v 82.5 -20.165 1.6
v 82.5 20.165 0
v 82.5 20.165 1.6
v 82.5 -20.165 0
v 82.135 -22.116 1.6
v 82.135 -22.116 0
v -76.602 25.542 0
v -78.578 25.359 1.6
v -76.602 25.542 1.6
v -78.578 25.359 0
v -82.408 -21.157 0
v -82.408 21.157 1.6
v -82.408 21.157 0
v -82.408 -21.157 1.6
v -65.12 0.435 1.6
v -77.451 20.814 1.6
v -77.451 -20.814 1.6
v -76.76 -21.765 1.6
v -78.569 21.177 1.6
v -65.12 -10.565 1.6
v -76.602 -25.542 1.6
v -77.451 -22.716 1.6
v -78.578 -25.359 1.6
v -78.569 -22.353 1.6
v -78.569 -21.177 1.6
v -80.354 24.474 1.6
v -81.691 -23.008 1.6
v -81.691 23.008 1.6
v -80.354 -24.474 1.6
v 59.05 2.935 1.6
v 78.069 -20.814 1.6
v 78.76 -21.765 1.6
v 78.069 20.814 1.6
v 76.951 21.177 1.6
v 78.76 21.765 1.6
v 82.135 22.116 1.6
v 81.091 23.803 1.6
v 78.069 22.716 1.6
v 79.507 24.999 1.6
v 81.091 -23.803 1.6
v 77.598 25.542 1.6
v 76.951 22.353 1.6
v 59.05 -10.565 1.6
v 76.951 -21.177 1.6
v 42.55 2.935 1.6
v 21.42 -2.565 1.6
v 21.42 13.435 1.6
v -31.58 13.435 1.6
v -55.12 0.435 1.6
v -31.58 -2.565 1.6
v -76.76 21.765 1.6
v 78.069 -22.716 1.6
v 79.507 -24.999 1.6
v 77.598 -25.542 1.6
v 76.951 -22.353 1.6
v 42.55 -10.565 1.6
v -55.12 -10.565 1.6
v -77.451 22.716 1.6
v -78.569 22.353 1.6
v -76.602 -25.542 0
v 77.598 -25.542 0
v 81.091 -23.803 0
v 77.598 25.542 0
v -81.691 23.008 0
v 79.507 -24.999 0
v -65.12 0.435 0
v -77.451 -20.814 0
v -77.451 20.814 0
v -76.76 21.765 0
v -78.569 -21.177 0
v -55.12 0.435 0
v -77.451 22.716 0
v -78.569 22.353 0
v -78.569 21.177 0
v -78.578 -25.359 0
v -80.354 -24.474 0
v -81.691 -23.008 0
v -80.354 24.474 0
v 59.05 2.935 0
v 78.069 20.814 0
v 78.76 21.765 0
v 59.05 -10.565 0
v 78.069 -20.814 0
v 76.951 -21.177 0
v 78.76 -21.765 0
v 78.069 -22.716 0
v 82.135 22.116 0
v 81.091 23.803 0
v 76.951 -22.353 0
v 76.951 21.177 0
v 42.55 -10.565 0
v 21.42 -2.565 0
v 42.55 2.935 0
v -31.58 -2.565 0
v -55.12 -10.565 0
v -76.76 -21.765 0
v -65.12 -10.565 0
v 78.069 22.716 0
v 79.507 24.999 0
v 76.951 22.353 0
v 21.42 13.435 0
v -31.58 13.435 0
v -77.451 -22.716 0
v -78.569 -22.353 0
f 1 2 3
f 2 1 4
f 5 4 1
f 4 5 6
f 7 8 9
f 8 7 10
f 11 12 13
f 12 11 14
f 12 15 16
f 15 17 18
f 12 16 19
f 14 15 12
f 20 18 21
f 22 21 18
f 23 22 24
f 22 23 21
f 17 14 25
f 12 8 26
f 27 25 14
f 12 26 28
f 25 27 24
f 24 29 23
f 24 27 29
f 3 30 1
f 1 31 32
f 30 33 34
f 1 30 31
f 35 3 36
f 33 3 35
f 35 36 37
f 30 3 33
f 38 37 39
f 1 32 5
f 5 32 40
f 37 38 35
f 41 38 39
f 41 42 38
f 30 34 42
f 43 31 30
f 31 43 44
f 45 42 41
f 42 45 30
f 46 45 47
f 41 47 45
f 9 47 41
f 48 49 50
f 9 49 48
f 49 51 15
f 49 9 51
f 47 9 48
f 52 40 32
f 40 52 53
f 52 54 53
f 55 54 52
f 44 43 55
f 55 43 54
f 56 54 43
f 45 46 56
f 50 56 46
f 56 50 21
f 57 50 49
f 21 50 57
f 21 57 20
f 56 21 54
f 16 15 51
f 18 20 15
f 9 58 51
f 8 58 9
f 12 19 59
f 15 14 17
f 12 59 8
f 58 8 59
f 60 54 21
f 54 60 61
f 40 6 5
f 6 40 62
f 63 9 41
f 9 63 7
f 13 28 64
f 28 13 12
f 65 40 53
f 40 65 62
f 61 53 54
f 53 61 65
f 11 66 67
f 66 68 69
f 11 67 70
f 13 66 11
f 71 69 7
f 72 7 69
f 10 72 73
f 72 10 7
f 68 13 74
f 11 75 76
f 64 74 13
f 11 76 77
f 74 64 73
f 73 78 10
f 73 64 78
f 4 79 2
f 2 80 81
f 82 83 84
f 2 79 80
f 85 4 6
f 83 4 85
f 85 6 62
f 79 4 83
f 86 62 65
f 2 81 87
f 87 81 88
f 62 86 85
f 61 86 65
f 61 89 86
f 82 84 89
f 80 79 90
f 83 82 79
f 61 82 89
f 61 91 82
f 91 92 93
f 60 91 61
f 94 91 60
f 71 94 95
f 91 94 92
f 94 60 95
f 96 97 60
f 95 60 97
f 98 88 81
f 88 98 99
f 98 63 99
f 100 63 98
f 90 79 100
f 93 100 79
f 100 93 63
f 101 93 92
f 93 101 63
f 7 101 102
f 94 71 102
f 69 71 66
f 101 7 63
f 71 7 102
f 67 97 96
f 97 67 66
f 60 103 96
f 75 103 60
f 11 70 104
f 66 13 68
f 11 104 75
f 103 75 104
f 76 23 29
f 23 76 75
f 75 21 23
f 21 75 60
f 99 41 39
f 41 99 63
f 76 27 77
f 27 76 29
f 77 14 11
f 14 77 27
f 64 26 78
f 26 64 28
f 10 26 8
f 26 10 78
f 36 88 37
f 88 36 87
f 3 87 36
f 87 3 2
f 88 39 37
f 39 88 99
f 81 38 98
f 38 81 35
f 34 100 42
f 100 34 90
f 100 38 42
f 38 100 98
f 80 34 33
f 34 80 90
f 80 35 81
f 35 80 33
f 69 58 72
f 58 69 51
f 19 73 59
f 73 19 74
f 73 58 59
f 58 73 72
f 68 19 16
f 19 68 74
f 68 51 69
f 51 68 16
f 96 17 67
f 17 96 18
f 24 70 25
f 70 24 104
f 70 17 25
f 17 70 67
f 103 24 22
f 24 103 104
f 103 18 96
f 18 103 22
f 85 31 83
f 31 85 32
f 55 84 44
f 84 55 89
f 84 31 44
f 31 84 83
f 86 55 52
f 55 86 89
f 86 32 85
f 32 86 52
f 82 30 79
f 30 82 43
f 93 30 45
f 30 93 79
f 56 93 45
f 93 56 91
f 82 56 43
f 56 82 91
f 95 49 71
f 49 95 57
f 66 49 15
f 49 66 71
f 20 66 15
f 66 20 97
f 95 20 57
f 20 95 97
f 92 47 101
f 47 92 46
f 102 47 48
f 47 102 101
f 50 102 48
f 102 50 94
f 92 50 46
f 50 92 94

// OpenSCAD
// file: src/otvory_conf.scad
//Konfigurace pro otvory

//1B) - LCD 2x16
//vzdalenost der
vzdalenost_der_x = 75;
vzdalenost_der_y = 31;
prumer_otvoru = 2.7;
prumer_sloupku = 5;

//ramecek LCD
ramecek_x = 72;
ramecek_y = 23;

//vyska ramecku LCD
ramecek_vyska = 5;
// file: configuration.scad
//UNIBOX03A
//------------------------------------------------------------
///*

rozmer_x=165;
rozmer_y=51.13;
sila=1.5;

roztec_srouby_x=155.52;
roztec_srouby_y=43.53;
prumer_sroubu=2;
zakulaceni_hrany=5.4;

roztec_der=10.16;
pocet_der_osa_x=15;
// file: src/UNIBOX03A_D01.scad
include <../configuration.scad>


//PLBASE ZAKLADNI
//------------------------------------------------------------

//UNIBOX03A_D01();

module UNIBOX03A_D01(){

difference () {

translate([-(rozmer_x/2-zakulaceni_hrany),-(rozmer_y/2-zakulaceni_hrany),0]) 
minkowski()
    {
	cube([rozmer_x-2*zakulaceni_hrany,rozmer_y-2*zakulaceni_hrany,sila]);         
        cylinder(r=zakulaceni_hrany,h=0.1);
    }
  
//odecet otvory

translate([roztec_srouby_x/2,roztec_srouby_y/2,0])      
    cylinder(sila*5, d=prumer_sroubu, center=true);   
  
translate([-roztec_srouby_x/2,roztec_srouby_y/2,0])      
    cylinder(sila*5, d=prumer_sroubu, center=true);    

translate([-roztec_srouby_x/2,-roztec_srouby_y/2,0])      
    cylinder(sila*5, d=prumer_sroubu, center=true);

translate([roztec_srouby_x/2,-roztec_srouby_y/2,0])      
    cylinder(sila*5, d=prumer_sroubu, center=true);

}
}
// main file
use <src/UNIBOX03A_D01.scad>
use <src/otvory.scad>

include <configuration.scad>
include <src/otvory_conf.scad>


barva_sloupku = "cyan";
barva_listy = "red";
barva_celicka = "green";
barva_plbase = "yellow";

//Předni čeličko
//------------------------------------------------------------

vzdalenost_AL=9; //vzdalenost od hrany čelíčka k vrchní hraně ALbase

difference() {
color(barva_sloupku)
translate([0,0,0])
UNIBOX03A_D01();



posun_modulu_der_x=10;
rotate(a=[-90,0,0])
translate([posun_modulu_der_x*roztec_der-roztec_der*(pocet_der_osa_x-1)/2,0,-rozmer_y/2+vzdalenost_AL])
VLFANT01B(2*sila,roztec_der);
    
posun_modulu_der_x1=0;
rotate(a=[-90,0,0])
translate([posun_modulu_der_x1*roztec_der-roztec_der*(pocet_der_osa_x-1)/2,0,-rozmer_y/2+vzdalenost_AL])

UNIPOWER02A(2*sila,roztec_der); 
    
    
 posun_modulu_der_x2=4;
rotate(a=[-90,0,0])
translate([posun_modulu_der_x2*roztec_der-roztec_der*(pocet_der_osa_x-1)/2,0,-rozmer_y/2+vzdalenost_AL])   
 C1(2*sila,roztec_der);   
    
     }  
